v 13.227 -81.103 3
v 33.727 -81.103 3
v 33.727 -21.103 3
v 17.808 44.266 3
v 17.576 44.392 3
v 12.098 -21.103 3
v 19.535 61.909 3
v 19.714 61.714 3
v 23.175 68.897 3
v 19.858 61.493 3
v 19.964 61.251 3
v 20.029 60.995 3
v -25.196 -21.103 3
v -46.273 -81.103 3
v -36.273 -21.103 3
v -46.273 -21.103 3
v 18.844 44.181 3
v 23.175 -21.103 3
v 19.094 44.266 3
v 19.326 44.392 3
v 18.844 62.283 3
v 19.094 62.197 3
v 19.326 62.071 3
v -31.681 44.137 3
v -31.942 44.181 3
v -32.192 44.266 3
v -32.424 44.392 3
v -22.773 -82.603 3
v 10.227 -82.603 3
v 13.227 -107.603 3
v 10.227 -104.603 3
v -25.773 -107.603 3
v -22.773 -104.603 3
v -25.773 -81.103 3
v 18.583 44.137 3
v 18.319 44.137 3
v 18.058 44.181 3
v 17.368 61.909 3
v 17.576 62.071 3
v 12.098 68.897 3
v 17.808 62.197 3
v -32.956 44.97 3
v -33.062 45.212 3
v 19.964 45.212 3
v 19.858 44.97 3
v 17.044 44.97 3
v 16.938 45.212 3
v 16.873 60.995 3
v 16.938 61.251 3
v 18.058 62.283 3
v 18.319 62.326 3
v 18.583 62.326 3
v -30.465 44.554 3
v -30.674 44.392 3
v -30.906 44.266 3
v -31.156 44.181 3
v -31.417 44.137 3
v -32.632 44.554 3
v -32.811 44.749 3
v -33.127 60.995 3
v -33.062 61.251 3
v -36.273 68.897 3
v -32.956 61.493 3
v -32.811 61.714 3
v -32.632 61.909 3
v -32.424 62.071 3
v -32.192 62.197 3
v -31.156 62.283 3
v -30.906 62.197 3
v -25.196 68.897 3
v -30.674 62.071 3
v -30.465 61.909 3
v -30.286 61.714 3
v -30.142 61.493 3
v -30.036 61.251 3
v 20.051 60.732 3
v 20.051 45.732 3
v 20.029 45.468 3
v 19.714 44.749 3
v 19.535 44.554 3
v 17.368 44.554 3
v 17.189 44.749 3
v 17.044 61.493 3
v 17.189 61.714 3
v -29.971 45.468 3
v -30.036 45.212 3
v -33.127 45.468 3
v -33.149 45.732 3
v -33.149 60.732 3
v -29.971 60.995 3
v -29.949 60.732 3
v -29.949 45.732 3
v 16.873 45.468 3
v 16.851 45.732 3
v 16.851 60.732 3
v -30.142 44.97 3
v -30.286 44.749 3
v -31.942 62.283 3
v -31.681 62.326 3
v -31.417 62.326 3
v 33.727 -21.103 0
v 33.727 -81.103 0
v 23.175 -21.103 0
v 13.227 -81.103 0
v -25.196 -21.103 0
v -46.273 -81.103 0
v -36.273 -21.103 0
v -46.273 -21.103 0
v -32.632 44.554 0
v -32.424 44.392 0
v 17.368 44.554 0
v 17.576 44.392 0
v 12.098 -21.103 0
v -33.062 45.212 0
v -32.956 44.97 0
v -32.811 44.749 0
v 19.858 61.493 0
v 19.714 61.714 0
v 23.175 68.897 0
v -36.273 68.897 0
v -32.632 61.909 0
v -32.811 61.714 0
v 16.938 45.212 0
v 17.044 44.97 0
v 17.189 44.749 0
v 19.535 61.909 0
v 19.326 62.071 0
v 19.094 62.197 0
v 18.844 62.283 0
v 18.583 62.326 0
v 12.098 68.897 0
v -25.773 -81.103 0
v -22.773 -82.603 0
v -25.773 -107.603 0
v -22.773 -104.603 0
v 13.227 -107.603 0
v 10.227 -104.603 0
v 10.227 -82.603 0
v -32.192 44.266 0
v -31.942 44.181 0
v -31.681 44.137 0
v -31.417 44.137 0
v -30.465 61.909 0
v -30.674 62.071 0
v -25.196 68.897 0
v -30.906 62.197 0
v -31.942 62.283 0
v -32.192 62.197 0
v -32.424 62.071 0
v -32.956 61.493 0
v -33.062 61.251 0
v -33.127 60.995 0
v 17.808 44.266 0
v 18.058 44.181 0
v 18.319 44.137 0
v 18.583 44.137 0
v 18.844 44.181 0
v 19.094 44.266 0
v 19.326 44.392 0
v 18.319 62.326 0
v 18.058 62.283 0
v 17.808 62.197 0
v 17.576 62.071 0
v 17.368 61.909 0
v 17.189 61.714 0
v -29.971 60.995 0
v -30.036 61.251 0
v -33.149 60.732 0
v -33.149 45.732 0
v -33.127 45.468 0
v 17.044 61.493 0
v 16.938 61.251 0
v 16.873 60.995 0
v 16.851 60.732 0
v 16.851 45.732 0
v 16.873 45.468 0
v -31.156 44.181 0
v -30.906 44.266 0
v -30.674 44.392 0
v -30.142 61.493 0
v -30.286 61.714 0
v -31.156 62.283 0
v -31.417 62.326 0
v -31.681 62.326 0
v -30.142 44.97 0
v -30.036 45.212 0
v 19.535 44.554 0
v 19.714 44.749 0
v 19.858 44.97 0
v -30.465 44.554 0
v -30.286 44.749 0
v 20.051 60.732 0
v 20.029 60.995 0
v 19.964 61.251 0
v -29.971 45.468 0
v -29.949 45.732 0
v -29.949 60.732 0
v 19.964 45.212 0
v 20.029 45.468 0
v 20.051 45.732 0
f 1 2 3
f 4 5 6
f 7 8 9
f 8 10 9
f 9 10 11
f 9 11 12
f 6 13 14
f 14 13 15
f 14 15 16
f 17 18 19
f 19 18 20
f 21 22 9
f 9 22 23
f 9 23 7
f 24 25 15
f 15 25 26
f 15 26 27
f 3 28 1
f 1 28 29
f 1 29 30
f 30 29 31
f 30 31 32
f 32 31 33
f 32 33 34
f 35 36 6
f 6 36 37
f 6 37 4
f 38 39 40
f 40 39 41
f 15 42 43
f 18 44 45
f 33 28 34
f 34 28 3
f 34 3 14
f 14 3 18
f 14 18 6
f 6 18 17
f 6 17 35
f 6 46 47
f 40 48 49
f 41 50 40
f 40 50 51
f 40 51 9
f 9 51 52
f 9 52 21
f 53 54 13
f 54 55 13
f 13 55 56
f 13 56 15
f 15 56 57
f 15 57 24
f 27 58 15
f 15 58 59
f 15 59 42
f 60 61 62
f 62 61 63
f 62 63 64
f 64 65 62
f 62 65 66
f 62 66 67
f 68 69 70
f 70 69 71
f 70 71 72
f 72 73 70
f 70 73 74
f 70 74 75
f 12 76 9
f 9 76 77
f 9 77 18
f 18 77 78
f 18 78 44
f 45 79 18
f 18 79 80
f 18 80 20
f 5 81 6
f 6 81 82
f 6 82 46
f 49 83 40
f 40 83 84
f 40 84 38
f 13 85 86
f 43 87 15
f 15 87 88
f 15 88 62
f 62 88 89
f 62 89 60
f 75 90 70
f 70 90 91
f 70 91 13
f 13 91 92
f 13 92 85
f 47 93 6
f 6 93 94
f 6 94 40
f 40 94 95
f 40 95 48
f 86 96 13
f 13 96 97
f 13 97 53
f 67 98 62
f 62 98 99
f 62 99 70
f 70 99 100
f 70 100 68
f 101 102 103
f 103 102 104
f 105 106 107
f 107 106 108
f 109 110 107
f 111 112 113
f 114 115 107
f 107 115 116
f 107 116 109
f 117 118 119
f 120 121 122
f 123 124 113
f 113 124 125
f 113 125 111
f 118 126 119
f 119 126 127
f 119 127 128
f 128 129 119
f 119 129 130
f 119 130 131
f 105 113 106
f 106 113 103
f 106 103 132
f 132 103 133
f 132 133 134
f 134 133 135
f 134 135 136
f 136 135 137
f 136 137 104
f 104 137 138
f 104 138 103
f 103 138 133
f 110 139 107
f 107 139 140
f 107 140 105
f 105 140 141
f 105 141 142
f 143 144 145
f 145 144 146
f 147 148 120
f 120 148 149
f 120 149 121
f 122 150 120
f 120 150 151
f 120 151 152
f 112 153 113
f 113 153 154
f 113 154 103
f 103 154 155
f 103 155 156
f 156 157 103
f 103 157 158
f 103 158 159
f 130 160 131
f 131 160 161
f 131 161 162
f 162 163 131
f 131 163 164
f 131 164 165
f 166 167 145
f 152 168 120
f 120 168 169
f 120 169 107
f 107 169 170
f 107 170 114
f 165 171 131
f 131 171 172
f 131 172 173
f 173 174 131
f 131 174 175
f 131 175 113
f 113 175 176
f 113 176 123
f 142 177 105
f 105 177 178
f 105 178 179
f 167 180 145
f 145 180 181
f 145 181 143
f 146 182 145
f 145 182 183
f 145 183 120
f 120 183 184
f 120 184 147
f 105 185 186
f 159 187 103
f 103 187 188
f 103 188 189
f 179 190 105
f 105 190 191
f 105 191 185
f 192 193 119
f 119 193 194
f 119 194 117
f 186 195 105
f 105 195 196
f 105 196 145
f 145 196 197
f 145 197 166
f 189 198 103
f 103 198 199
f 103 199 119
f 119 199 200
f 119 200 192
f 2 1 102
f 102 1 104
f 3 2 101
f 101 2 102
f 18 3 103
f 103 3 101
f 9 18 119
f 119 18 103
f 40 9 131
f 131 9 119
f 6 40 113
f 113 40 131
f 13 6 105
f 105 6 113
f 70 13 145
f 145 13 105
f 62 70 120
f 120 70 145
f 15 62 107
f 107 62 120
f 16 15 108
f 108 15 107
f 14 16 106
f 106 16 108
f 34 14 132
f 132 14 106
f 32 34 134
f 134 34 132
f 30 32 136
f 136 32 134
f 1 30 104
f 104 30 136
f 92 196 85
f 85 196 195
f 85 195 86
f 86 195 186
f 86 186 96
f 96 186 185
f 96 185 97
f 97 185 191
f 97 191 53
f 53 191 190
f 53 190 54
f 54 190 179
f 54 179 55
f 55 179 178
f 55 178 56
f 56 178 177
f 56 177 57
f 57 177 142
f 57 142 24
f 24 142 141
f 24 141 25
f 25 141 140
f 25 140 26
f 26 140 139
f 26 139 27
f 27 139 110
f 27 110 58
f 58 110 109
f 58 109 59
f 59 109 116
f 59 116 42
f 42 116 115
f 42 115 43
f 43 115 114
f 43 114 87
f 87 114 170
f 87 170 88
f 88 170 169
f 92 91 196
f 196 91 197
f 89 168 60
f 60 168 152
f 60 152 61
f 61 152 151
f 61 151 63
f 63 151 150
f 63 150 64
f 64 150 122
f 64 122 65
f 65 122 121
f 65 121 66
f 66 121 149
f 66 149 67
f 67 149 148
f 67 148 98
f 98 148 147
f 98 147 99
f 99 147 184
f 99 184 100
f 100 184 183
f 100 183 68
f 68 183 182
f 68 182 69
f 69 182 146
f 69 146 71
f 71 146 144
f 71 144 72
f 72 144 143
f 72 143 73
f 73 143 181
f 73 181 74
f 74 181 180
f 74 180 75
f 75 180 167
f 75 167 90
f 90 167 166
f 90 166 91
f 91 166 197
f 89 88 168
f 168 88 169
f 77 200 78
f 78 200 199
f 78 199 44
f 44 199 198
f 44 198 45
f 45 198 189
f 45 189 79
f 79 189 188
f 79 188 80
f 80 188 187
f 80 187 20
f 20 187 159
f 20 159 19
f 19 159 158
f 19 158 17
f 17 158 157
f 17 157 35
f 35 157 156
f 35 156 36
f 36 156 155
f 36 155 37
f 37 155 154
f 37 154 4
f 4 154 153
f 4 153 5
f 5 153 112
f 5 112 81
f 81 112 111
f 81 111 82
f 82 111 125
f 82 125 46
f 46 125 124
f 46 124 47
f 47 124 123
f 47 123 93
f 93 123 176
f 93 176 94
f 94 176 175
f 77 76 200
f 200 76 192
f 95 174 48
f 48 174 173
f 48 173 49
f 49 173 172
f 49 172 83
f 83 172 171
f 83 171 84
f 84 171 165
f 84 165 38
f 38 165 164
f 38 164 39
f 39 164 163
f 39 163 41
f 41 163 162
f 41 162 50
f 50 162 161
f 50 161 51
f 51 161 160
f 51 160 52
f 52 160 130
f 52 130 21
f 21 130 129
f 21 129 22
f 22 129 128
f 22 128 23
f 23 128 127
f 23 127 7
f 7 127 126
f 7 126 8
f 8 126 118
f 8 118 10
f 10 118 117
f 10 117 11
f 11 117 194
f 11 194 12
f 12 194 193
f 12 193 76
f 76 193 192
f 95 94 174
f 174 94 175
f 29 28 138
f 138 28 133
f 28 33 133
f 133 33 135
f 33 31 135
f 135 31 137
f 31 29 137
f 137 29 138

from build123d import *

# Parameters (mm, degrees)
SKETCH_1_W      = 33
SKETCH_1_H      = 22
EXTRUDE_1_DEPTH = 3


with BuildPart() as part:
    # 草图1 → 凸台-拉伸1 (new body)
    with BuildSketch(Plane.XY):
        Polygon((12.097999847, 68.896913641), (23.174949538, 68.896913641), (23.174949538, -21.103086359), (33.727403861, -21.103086359), (33.727403861, -81.103086359), (13.227403861, -81.103086359), (13.227403861, -107.603086359), (-25.772596139, -107.603086359), (-25.772596139, -81.103086359), (-46.272596139, -81.103086359), (-46.272596139, -21.103086359), (-36.272596139, -21.103086359), (-36.272596139, 68.896913641), (-25.195646449, 68.896913641), (-25.195646449, -21.103086359), (12.097999847, -21.103086359), align=None)
        with BuildLine():
            Line((-33.148823301, 45.73159086), (-33.148823301, 60.73159086))
            ThreePointArc((-33.148823301, 60.73159086), (-31.548823301, 62.33159086), (-29.948823301, 60.73159086))
            Line((-29.948823301, 60.73159086), (-29.948823301, 45.73159086))
            ThreePointArc((-29.948823301, 45.73159086), (-31.548823301, 44.13159086), (-33.148823301, 45.73159086))
        make_face(mode=Mode.SUBTRACT)
        with BuildLine():
            Line((20.051176699, 45.73159086), (20.051176699, 60.73159086))
            ThreePointArc((20.051176699, 60.73159086), (18.451176699, 62.33159086), (16.851176699, 60.73159086))
            Line((16.851176699, 60.73159086), (16.851176699, 45.73159086))
            ThreePointArc((16.851176699, 45.73159086), (18.451176699, 44.13159086), (20.051176699, 45.73159086))
        make_face(mode=Mode.SUBTRACT)
        with Locations((-6.272596139, -93.603086359)):
            Rectangle(SKETCH_1_W, SKETCH_1_H, mode=Mode.SUBTRACT)
    extrude(amount=EXTRUDE_1_DEPTH)


solid = part.part
